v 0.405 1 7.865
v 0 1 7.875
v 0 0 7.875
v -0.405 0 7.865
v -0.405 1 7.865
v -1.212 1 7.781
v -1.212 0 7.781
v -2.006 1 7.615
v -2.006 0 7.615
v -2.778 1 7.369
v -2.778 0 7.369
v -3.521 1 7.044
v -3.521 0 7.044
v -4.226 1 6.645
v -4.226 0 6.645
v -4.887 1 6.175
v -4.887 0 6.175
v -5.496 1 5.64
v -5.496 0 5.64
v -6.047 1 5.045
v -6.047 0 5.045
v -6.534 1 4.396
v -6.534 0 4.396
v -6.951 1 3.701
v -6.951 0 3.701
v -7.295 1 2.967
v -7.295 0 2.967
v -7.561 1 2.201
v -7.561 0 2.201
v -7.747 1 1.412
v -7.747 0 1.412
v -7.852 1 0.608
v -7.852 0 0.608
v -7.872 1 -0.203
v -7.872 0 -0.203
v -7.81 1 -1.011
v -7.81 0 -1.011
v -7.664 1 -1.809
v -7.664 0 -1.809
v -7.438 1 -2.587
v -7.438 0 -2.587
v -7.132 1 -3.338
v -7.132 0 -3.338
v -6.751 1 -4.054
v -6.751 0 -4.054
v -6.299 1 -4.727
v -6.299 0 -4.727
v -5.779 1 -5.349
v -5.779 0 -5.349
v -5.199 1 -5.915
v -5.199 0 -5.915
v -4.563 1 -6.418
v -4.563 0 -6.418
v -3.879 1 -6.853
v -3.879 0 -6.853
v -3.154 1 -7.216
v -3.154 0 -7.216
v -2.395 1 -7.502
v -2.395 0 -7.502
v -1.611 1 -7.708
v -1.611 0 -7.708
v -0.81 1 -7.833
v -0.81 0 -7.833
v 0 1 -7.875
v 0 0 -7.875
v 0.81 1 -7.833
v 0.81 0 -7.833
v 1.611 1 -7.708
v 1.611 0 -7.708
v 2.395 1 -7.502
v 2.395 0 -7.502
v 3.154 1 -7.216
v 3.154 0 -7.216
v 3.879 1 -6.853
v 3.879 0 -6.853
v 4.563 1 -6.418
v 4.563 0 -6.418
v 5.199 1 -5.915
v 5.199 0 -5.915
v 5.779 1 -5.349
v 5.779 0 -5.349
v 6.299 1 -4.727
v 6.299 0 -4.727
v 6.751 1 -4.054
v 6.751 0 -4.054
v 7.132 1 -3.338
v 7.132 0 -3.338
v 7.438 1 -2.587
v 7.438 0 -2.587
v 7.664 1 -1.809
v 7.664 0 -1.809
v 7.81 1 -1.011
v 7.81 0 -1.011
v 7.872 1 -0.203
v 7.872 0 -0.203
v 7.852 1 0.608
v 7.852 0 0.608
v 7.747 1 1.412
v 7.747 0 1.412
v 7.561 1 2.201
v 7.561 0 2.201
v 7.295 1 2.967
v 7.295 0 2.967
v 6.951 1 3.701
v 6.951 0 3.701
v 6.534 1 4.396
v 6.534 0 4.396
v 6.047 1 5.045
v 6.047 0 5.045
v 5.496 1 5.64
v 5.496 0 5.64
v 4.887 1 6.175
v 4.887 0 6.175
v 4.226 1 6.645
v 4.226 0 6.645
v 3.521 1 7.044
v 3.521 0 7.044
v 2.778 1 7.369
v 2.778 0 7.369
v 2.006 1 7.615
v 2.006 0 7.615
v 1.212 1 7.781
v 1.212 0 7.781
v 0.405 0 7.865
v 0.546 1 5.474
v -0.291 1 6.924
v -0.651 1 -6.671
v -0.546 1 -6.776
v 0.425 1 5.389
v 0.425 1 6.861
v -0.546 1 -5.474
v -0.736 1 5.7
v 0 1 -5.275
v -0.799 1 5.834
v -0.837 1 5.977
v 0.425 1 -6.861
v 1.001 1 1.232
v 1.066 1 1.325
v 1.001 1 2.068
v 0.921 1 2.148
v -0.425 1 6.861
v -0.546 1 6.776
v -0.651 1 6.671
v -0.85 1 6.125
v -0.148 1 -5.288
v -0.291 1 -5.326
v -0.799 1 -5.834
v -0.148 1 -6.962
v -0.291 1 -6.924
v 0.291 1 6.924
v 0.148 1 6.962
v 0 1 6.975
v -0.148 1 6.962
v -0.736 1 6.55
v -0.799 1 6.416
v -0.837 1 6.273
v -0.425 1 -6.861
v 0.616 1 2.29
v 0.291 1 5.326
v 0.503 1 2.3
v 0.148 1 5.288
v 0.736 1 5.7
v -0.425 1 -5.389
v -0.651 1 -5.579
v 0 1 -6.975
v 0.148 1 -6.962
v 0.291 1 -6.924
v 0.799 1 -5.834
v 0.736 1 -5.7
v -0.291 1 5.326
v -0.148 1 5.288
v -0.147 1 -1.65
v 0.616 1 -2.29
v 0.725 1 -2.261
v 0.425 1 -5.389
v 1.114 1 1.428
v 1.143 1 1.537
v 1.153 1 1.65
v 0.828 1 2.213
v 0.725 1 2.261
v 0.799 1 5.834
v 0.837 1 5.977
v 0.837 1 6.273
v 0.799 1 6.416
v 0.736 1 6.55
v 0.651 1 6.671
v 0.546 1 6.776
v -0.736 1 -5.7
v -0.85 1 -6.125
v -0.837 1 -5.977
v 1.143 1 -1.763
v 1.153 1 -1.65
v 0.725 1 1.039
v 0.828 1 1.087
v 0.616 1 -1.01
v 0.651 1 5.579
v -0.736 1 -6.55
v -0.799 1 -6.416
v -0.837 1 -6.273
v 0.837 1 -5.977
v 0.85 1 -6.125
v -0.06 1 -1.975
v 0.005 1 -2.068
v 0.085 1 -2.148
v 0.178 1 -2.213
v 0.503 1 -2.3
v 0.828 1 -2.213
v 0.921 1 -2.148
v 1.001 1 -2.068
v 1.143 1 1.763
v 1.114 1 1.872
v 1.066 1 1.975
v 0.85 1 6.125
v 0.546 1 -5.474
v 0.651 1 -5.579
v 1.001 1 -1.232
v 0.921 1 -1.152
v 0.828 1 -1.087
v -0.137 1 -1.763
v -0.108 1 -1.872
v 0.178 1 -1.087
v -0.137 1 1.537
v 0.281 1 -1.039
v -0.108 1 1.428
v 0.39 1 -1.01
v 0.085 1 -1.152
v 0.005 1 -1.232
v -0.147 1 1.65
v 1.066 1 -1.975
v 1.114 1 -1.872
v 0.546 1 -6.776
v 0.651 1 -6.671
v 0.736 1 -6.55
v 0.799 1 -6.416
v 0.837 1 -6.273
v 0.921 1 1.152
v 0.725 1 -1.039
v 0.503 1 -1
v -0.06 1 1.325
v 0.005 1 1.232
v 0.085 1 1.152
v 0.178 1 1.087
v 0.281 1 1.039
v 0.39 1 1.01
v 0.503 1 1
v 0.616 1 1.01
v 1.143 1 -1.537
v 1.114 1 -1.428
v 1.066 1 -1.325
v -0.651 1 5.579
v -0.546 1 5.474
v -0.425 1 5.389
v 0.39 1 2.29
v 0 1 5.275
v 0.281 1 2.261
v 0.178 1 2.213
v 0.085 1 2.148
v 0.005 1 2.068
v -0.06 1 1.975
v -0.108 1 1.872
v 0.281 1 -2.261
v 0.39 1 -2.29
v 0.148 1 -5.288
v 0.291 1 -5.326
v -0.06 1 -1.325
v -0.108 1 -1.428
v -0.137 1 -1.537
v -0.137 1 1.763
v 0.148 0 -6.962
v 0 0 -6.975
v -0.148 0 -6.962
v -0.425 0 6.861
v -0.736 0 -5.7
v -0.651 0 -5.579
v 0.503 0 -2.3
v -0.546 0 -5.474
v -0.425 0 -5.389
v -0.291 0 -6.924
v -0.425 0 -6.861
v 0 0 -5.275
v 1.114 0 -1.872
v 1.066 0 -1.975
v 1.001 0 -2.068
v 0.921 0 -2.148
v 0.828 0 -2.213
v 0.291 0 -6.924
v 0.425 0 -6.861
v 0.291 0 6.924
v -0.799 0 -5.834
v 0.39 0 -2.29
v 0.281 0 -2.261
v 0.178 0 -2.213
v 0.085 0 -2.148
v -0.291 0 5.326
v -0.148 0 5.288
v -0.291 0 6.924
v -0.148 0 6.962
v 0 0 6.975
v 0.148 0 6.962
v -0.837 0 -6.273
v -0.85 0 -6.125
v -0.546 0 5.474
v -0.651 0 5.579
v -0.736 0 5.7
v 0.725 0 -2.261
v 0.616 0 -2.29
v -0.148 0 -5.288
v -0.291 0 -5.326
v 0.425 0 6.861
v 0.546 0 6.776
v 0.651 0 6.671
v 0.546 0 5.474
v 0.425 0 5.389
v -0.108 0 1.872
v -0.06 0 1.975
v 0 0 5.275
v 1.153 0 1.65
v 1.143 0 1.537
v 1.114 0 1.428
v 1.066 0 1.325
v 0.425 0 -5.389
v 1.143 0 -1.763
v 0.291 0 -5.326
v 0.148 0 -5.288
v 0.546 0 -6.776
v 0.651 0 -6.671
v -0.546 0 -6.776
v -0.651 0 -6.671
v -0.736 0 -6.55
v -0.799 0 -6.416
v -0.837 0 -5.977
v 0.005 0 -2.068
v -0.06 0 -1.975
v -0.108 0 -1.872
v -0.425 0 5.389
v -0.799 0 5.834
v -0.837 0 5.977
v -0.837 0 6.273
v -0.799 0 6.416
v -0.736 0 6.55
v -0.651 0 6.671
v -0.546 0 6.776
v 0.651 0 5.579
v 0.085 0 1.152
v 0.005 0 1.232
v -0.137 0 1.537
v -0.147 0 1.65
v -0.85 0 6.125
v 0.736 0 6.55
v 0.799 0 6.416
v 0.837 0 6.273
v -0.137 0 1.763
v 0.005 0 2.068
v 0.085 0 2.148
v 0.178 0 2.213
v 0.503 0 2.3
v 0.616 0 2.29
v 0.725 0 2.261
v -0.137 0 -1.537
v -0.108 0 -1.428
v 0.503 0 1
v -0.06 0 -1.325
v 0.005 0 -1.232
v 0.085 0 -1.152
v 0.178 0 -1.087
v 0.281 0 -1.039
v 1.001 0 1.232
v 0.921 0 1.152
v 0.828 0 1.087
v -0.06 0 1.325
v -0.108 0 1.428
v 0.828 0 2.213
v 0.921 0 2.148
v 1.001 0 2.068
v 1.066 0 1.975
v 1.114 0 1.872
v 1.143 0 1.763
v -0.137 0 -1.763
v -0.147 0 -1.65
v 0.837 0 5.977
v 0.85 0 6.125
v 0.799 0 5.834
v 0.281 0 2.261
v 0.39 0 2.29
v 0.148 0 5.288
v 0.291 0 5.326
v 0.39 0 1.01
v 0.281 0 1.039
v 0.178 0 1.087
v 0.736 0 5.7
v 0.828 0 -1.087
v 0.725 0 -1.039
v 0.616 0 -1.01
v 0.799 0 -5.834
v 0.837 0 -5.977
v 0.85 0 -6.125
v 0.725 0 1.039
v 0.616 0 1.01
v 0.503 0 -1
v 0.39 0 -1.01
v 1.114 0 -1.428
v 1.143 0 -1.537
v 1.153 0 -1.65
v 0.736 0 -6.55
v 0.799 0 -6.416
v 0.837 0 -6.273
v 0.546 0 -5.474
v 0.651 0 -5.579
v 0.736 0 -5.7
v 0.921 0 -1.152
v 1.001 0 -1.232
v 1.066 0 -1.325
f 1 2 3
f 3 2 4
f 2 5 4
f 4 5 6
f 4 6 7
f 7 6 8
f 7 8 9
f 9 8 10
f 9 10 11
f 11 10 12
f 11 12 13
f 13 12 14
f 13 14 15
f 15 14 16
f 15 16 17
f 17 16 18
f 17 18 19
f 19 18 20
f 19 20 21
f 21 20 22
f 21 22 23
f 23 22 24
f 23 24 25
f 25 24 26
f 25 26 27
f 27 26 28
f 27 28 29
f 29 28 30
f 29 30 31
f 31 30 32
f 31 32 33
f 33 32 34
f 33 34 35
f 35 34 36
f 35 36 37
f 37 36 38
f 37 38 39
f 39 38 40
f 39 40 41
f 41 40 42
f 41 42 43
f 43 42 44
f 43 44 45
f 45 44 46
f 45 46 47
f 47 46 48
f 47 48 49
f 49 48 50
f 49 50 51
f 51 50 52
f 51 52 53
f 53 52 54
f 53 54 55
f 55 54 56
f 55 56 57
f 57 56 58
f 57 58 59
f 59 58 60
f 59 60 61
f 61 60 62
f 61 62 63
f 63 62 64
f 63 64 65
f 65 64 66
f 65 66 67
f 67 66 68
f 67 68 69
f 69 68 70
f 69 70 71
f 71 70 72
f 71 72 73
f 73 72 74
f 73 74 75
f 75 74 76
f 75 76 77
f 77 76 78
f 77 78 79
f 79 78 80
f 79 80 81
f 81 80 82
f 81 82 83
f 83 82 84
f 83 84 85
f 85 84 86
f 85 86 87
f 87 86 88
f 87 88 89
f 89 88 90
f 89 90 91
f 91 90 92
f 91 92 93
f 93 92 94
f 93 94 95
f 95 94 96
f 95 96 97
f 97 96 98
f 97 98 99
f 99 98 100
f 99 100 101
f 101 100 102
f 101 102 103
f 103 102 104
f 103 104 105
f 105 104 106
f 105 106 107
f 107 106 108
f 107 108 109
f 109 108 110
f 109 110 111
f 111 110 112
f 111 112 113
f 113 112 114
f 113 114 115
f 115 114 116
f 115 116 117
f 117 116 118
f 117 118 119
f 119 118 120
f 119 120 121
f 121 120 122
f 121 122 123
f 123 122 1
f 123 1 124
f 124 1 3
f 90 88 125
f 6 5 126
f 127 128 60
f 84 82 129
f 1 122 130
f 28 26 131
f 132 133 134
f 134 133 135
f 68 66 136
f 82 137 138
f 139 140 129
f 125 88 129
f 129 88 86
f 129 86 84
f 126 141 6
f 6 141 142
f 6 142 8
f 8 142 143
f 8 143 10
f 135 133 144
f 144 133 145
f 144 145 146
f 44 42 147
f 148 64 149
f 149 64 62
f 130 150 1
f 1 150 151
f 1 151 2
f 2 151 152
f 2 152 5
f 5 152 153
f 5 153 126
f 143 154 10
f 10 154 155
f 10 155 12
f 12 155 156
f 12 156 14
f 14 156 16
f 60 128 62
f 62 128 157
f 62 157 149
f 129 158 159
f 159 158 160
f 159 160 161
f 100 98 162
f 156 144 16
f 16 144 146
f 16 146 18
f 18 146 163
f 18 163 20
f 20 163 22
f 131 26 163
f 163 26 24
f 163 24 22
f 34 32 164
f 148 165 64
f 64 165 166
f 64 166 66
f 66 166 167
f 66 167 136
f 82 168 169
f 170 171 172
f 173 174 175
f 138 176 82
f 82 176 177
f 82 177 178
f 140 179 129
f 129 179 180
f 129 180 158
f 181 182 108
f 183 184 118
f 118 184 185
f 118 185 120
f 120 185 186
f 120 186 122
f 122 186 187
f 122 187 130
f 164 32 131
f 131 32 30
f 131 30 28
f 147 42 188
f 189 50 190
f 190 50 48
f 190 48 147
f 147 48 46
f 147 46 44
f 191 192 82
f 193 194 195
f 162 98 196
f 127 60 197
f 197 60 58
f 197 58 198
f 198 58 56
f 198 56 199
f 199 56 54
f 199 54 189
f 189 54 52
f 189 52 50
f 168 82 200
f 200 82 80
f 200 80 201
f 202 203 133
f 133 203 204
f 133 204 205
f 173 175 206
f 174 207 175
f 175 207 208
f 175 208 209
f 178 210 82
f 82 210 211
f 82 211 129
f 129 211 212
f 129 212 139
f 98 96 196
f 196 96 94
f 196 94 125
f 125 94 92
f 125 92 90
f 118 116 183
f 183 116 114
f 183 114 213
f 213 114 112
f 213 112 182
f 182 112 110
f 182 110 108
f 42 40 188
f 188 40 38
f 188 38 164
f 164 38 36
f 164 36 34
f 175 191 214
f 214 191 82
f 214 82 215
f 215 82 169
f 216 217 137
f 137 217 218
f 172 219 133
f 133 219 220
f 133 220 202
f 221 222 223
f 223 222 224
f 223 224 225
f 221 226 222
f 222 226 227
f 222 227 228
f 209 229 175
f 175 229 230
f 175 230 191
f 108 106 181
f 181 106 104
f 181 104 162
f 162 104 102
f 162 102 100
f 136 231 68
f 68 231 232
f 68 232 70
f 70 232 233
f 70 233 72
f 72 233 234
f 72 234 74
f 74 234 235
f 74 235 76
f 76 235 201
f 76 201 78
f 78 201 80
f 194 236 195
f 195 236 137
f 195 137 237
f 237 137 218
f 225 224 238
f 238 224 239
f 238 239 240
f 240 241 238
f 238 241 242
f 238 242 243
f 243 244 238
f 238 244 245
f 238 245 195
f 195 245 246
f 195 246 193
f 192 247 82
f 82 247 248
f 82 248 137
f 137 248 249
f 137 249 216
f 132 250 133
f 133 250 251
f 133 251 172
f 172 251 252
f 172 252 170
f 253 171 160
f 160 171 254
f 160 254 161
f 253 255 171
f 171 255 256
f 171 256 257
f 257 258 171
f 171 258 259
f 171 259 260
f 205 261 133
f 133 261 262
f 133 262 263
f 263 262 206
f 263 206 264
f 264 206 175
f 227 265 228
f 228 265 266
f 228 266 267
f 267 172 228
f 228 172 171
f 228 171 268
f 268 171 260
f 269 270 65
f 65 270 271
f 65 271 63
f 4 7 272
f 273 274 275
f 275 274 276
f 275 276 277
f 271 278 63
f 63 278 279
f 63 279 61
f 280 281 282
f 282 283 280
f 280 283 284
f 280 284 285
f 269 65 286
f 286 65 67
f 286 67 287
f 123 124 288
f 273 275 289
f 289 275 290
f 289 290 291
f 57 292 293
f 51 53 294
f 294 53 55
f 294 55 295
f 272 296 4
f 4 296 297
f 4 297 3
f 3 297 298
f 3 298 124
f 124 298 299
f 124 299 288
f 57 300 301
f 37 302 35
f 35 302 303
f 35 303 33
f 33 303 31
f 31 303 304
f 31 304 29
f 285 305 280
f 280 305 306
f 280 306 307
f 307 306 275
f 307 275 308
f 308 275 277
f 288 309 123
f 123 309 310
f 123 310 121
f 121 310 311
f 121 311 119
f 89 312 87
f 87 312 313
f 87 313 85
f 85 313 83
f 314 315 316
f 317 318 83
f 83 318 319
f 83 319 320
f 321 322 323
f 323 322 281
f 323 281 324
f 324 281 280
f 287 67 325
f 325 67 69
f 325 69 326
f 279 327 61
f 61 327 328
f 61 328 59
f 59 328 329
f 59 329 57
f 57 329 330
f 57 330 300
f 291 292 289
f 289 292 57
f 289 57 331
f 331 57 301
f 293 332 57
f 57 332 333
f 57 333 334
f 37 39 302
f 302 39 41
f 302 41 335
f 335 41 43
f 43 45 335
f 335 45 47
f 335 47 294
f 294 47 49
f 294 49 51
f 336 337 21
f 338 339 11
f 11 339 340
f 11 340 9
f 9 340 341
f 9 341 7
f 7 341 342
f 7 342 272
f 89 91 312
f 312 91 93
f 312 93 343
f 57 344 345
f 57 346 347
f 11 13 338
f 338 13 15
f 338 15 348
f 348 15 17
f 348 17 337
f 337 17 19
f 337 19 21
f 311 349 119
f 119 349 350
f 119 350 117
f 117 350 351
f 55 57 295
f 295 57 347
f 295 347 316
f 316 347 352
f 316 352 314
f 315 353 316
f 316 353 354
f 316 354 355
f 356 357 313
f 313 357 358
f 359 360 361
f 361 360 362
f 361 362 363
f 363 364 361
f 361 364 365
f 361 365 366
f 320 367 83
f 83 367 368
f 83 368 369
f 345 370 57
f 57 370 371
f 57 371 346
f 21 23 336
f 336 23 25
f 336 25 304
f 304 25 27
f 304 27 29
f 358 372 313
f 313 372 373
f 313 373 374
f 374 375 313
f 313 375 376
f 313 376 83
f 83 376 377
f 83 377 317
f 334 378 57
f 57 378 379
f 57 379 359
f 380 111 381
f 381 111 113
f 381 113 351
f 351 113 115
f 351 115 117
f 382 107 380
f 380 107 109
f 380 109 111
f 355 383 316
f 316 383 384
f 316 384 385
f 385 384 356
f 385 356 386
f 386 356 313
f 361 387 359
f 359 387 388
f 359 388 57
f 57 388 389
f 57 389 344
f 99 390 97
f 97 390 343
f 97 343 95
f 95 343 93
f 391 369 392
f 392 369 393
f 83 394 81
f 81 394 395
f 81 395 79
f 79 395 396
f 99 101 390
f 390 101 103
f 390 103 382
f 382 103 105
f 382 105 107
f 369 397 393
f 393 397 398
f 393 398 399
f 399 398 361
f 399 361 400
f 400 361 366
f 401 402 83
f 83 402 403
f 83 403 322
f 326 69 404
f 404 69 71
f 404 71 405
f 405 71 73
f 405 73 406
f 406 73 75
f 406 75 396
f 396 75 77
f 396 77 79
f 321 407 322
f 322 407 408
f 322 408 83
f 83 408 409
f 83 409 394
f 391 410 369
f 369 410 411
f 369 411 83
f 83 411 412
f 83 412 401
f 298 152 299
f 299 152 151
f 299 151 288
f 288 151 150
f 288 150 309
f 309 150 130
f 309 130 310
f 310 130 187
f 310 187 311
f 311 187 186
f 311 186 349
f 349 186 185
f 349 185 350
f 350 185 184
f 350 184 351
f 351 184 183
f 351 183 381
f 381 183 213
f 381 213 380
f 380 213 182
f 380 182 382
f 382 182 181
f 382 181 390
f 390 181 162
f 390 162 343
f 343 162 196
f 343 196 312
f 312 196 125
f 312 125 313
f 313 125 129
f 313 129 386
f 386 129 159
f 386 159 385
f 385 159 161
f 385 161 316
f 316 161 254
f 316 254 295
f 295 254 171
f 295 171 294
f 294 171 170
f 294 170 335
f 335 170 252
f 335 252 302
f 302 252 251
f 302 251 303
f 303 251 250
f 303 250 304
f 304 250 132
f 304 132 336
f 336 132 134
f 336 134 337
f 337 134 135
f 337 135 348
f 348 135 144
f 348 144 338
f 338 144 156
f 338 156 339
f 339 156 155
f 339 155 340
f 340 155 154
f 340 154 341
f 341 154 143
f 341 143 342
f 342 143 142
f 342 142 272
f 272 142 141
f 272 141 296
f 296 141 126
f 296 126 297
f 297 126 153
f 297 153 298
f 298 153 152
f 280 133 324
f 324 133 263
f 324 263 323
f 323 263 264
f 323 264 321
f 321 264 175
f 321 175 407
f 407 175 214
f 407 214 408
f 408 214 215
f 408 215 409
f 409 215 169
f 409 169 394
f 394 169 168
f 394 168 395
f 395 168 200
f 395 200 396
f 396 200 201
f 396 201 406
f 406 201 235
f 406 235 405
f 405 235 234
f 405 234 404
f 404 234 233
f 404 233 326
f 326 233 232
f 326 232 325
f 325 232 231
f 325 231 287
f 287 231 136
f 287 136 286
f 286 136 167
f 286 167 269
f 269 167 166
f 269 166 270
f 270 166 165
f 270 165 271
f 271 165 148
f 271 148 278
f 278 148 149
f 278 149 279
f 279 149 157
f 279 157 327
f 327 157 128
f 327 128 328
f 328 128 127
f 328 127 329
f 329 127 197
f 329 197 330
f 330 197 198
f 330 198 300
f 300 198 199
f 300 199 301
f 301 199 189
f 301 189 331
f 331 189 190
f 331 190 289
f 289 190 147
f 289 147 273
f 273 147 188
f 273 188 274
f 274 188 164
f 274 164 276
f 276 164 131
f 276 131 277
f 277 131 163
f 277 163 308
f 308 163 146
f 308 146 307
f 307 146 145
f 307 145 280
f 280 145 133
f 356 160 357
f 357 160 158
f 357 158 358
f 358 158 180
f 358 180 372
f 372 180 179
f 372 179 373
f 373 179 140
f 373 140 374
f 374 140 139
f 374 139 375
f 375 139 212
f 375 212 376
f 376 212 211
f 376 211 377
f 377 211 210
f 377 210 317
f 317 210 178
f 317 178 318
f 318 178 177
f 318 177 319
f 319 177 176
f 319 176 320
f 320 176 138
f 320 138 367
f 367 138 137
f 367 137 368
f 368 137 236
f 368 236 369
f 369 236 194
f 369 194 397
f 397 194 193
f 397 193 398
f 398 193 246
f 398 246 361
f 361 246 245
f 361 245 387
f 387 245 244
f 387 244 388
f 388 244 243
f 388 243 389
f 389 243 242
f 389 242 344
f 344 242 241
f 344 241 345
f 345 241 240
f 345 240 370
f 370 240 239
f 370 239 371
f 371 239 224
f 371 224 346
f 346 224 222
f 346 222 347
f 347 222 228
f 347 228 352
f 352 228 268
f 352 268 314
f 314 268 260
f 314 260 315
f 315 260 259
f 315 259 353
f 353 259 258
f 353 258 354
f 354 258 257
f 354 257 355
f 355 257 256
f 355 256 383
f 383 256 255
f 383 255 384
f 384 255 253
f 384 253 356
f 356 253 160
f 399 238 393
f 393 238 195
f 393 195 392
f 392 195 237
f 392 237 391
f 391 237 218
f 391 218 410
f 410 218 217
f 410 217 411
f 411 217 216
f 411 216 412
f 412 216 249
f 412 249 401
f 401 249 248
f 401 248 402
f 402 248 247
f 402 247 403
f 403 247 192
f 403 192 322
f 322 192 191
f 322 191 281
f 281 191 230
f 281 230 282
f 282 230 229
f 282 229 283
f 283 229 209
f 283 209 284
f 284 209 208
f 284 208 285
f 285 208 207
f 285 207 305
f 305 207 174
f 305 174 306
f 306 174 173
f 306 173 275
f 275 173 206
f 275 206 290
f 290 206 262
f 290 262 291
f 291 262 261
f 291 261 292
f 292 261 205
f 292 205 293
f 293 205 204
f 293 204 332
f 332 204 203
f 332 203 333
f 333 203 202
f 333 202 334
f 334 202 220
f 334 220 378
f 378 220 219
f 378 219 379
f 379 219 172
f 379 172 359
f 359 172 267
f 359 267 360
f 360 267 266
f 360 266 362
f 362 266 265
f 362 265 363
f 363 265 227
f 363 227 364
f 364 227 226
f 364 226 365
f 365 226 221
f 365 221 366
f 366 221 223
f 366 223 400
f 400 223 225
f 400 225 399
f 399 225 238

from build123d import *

# Parameters (mm, degrees)
SKETCH1_R           = 7.875
BOSS_EXTRUDE1_DEPTH = 1
SKETCH2_R           = 0.85
CUT_EXTRUDE1_DEPTH  = 12.181737343
SKETCH3_R           = 0.65
CUT_EXTRUDE2_DEPTH  = 11


with BuildPart() as part:
    # Sketch1 → Boss-Extrude1 (new body)
    with BuildSketch(Plane(origin=(0, 0, 0), x_dir=(1, 0, 0), z_dir=(0, 1, 0))):
        with Locations(Location((0, 0, 0), (0, 0, 270))):
            Circle(SKETCH1_R)
    extrude(amount=BOSS_EXTRUDE1_DEPTH)

    # Sketch2 → Cut-Extrude1 (cut, through all)
    with BuildSketch(Plane(origin=(0, 1, 0), x_dir=(1, 0, 0), z_dir=(0, 1, 0))):
        with Locations(Location((0, 6.125, 0), (0, 0, 270))):
            Circle(SKETCH2_R)
        with Locations(Location((0, -6.125, 0), (0, 0, 90))):
            Circle(SKETCH2_R)
    extrude(amount=-CUT_EXTRUDE1_DEPTH, mode=Mode.SUBTRACT)

    # Sketch3 → Cut-Extrude2 (cut)
    with BuildSketch(Plane(origin=(0, 1, 0), x_dir=(1, 0, 0), z_dir=(0, 1, 0))):
        with Locations(Location((0.503115295, 1.65, 0), (0, 0, 270))):
            Circle(SKETCH3_R)
        with Locations(Location((0.503115295, -1.65, 0), (0, 0, 270))):
            Circle(SKETCH3_R)
    extrude(amount=-CUT_EXTRUDE2_DEPTH, mode=Mode.SUBTRACT)


solid = part.part
